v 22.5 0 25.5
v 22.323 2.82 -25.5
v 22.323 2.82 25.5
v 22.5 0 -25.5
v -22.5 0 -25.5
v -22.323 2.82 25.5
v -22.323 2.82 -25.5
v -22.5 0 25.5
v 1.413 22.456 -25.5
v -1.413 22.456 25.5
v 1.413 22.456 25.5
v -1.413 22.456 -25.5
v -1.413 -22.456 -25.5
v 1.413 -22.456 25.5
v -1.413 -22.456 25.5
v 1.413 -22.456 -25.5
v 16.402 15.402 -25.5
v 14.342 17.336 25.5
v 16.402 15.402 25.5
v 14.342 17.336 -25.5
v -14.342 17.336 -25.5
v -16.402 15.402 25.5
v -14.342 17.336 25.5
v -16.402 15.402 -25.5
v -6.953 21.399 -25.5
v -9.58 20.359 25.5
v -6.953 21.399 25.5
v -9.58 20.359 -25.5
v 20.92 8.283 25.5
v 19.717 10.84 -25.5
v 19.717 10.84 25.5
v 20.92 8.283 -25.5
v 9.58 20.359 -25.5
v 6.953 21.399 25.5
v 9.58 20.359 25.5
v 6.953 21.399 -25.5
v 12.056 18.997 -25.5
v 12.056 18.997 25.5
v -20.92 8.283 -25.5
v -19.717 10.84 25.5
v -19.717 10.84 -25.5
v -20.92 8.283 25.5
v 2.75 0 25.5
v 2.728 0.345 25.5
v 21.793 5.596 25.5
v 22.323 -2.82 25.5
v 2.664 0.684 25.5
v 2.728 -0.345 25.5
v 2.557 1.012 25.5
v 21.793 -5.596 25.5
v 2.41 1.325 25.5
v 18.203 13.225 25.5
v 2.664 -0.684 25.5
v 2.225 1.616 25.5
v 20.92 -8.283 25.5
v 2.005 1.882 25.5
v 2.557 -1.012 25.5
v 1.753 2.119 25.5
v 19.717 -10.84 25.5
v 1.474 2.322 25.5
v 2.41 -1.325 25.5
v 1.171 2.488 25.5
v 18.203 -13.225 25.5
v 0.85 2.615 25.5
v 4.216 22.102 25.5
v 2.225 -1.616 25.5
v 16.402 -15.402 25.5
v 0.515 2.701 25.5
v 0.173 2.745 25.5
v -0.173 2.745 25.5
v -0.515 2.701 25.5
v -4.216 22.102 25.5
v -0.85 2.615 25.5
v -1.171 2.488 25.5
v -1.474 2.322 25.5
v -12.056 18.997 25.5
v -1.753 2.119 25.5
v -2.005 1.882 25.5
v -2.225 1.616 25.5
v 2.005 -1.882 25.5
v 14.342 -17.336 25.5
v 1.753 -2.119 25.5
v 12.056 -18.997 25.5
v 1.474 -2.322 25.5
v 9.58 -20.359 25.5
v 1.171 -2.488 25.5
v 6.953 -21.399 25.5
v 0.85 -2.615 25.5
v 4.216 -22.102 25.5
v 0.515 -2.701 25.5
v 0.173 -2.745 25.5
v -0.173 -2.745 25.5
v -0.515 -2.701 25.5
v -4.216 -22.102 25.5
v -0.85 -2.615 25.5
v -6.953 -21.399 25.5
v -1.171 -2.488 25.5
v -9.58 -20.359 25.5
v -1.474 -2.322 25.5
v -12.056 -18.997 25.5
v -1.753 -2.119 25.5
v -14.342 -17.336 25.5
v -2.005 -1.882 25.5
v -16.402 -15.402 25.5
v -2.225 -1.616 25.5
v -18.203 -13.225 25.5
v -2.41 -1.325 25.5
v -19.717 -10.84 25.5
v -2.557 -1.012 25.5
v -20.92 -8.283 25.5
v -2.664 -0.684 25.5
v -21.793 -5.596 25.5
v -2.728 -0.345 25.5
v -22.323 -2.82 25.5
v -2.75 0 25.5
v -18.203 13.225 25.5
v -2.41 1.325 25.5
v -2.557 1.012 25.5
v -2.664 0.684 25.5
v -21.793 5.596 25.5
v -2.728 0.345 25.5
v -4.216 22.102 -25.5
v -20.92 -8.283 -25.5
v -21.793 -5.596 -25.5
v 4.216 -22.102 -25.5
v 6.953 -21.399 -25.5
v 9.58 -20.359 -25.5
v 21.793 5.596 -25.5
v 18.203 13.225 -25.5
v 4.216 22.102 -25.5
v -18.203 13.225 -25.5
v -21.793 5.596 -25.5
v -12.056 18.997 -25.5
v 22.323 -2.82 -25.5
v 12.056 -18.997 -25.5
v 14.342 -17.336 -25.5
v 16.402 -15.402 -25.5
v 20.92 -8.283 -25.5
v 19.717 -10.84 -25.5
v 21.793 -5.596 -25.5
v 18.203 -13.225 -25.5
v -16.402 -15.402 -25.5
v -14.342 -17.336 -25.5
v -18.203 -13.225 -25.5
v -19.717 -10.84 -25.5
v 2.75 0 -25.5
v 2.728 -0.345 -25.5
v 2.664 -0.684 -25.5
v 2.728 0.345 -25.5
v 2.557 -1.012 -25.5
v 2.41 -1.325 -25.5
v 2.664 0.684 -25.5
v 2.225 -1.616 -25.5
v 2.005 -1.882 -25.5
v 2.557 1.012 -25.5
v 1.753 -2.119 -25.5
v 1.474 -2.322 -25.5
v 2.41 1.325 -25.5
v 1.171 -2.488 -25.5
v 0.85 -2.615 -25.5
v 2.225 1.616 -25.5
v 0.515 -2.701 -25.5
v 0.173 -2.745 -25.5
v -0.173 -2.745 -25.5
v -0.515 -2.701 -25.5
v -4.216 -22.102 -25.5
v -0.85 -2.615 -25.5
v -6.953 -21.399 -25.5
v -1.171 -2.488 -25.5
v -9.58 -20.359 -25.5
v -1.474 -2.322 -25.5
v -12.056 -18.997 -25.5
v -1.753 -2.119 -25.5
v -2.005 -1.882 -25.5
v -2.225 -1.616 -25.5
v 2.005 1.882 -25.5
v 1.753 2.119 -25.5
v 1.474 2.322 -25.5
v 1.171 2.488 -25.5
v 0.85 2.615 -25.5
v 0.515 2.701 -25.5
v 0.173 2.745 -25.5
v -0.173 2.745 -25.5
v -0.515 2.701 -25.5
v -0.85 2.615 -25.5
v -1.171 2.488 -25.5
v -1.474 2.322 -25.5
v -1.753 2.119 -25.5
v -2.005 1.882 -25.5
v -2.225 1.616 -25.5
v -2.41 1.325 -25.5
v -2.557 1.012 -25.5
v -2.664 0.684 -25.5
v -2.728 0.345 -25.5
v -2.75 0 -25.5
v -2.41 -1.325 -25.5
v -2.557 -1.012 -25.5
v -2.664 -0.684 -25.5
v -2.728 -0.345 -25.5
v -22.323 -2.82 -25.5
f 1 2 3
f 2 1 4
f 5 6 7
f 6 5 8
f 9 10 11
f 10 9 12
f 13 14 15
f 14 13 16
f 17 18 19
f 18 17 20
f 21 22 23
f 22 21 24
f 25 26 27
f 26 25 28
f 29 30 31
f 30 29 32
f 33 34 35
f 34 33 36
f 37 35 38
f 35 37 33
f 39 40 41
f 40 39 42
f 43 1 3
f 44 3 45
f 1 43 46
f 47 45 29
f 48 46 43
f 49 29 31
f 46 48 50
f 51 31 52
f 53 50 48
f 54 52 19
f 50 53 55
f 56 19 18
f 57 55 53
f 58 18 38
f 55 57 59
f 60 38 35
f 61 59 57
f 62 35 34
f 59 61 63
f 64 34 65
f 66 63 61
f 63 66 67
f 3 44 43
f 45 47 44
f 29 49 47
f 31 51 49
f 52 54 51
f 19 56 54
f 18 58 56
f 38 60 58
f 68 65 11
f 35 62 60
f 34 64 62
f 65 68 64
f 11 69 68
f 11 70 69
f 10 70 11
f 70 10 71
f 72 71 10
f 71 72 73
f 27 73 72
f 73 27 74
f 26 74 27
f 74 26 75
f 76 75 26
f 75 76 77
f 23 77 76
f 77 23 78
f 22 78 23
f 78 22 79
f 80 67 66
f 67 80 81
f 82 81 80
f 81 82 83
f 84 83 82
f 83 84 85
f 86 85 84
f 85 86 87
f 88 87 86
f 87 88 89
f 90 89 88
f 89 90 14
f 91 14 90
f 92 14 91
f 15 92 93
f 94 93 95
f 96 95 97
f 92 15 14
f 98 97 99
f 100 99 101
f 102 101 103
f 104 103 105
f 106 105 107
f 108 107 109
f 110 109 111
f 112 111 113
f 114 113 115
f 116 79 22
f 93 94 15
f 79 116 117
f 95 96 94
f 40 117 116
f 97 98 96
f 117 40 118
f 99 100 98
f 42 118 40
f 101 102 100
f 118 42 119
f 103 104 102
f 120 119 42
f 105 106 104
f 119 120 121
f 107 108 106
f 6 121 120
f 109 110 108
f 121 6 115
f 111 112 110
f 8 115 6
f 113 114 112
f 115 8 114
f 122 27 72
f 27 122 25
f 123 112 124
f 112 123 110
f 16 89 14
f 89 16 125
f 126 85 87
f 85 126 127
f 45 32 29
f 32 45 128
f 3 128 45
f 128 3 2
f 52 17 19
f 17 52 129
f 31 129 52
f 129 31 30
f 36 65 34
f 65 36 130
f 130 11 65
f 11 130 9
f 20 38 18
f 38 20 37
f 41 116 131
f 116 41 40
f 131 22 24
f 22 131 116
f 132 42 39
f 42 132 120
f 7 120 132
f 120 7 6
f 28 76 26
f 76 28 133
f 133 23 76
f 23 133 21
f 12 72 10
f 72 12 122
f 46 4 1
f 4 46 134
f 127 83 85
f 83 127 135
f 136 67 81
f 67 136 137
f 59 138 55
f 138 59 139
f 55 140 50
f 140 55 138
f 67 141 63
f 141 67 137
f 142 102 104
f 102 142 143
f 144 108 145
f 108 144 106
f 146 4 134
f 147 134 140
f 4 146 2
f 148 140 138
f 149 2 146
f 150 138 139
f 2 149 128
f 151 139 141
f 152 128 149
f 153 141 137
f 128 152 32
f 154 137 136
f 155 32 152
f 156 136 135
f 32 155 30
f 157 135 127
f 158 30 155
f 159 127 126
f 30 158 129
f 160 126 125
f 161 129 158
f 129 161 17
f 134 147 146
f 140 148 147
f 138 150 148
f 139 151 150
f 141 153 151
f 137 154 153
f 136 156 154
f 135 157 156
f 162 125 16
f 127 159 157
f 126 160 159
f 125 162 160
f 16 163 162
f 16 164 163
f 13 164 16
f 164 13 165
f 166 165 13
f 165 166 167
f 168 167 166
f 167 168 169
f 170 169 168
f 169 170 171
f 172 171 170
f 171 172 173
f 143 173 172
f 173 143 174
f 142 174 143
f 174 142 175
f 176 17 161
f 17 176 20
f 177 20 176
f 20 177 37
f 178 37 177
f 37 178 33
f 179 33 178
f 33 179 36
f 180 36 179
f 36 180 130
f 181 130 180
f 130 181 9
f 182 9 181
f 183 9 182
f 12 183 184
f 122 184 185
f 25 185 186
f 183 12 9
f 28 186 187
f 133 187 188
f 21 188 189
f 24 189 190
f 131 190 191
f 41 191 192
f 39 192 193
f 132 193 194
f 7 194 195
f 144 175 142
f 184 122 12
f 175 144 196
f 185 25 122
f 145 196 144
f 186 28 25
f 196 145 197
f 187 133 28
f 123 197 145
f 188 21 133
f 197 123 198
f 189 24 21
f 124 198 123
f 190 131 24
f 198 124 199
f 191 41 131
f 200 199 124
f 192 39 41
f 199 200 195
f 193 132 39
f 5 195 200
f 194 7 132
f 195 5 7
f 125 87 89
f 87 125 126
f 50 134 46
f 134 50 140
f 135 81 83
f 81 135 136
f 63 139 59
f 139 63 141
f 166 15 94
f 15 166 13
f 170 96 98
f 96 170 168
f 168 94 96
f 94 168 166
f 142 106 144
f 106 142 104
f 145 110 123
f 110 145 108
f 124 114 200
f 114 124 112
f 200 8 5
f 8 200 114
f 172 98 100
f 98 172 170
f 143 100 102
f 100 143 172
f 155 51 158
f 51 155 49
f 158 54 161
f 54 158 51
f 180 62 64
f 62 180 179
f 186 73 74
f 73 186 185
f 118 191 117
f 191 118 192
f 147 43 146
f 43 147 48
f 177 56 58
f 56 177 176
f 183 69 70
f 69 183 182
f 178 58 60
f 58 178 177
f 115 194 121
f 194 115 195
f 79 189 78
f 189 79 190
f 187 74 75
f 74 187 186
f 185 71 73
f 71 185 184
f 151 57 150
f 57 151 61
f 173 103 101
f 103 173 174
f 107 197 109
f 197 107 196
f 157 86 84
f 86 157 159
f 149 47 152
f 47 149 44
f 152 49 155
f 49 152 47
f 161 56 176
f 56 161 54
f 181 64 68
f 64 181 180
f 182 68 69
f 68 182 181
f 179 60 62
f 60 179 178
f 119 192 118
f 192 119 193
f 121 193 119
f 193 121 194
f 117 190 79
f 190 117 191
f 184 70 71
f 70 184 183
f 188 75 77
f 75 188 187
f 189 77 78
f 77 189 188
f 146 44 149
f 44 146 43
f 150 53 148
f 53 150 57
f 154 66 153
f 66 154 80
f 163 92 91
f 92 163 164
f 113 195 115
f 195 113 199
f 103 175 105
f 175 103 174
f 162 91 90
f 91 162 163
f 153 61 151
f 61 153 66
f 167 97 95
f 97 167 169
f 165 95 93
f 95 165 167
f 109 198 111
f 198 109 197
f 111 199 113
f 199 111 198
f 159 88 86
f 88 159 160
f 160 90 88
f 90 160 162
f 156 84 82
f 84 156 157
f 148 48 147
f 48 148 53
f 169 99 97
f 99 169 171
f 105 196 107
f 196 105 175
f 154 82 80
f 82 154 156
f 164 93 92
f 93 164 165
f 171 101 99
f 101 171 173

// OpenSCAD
$fn = 50;


difference() {
	union() {
		translate(v = [0, 0, -25.5000000000]) {
			cylinder(h = 51, r = 22.5000000000);
		}
	}
	union() {
		translate(v = [0, 0, -100.0000000000]) {
			cylinder(h = 200, r = 2.7500000000);
		}
	}
}
